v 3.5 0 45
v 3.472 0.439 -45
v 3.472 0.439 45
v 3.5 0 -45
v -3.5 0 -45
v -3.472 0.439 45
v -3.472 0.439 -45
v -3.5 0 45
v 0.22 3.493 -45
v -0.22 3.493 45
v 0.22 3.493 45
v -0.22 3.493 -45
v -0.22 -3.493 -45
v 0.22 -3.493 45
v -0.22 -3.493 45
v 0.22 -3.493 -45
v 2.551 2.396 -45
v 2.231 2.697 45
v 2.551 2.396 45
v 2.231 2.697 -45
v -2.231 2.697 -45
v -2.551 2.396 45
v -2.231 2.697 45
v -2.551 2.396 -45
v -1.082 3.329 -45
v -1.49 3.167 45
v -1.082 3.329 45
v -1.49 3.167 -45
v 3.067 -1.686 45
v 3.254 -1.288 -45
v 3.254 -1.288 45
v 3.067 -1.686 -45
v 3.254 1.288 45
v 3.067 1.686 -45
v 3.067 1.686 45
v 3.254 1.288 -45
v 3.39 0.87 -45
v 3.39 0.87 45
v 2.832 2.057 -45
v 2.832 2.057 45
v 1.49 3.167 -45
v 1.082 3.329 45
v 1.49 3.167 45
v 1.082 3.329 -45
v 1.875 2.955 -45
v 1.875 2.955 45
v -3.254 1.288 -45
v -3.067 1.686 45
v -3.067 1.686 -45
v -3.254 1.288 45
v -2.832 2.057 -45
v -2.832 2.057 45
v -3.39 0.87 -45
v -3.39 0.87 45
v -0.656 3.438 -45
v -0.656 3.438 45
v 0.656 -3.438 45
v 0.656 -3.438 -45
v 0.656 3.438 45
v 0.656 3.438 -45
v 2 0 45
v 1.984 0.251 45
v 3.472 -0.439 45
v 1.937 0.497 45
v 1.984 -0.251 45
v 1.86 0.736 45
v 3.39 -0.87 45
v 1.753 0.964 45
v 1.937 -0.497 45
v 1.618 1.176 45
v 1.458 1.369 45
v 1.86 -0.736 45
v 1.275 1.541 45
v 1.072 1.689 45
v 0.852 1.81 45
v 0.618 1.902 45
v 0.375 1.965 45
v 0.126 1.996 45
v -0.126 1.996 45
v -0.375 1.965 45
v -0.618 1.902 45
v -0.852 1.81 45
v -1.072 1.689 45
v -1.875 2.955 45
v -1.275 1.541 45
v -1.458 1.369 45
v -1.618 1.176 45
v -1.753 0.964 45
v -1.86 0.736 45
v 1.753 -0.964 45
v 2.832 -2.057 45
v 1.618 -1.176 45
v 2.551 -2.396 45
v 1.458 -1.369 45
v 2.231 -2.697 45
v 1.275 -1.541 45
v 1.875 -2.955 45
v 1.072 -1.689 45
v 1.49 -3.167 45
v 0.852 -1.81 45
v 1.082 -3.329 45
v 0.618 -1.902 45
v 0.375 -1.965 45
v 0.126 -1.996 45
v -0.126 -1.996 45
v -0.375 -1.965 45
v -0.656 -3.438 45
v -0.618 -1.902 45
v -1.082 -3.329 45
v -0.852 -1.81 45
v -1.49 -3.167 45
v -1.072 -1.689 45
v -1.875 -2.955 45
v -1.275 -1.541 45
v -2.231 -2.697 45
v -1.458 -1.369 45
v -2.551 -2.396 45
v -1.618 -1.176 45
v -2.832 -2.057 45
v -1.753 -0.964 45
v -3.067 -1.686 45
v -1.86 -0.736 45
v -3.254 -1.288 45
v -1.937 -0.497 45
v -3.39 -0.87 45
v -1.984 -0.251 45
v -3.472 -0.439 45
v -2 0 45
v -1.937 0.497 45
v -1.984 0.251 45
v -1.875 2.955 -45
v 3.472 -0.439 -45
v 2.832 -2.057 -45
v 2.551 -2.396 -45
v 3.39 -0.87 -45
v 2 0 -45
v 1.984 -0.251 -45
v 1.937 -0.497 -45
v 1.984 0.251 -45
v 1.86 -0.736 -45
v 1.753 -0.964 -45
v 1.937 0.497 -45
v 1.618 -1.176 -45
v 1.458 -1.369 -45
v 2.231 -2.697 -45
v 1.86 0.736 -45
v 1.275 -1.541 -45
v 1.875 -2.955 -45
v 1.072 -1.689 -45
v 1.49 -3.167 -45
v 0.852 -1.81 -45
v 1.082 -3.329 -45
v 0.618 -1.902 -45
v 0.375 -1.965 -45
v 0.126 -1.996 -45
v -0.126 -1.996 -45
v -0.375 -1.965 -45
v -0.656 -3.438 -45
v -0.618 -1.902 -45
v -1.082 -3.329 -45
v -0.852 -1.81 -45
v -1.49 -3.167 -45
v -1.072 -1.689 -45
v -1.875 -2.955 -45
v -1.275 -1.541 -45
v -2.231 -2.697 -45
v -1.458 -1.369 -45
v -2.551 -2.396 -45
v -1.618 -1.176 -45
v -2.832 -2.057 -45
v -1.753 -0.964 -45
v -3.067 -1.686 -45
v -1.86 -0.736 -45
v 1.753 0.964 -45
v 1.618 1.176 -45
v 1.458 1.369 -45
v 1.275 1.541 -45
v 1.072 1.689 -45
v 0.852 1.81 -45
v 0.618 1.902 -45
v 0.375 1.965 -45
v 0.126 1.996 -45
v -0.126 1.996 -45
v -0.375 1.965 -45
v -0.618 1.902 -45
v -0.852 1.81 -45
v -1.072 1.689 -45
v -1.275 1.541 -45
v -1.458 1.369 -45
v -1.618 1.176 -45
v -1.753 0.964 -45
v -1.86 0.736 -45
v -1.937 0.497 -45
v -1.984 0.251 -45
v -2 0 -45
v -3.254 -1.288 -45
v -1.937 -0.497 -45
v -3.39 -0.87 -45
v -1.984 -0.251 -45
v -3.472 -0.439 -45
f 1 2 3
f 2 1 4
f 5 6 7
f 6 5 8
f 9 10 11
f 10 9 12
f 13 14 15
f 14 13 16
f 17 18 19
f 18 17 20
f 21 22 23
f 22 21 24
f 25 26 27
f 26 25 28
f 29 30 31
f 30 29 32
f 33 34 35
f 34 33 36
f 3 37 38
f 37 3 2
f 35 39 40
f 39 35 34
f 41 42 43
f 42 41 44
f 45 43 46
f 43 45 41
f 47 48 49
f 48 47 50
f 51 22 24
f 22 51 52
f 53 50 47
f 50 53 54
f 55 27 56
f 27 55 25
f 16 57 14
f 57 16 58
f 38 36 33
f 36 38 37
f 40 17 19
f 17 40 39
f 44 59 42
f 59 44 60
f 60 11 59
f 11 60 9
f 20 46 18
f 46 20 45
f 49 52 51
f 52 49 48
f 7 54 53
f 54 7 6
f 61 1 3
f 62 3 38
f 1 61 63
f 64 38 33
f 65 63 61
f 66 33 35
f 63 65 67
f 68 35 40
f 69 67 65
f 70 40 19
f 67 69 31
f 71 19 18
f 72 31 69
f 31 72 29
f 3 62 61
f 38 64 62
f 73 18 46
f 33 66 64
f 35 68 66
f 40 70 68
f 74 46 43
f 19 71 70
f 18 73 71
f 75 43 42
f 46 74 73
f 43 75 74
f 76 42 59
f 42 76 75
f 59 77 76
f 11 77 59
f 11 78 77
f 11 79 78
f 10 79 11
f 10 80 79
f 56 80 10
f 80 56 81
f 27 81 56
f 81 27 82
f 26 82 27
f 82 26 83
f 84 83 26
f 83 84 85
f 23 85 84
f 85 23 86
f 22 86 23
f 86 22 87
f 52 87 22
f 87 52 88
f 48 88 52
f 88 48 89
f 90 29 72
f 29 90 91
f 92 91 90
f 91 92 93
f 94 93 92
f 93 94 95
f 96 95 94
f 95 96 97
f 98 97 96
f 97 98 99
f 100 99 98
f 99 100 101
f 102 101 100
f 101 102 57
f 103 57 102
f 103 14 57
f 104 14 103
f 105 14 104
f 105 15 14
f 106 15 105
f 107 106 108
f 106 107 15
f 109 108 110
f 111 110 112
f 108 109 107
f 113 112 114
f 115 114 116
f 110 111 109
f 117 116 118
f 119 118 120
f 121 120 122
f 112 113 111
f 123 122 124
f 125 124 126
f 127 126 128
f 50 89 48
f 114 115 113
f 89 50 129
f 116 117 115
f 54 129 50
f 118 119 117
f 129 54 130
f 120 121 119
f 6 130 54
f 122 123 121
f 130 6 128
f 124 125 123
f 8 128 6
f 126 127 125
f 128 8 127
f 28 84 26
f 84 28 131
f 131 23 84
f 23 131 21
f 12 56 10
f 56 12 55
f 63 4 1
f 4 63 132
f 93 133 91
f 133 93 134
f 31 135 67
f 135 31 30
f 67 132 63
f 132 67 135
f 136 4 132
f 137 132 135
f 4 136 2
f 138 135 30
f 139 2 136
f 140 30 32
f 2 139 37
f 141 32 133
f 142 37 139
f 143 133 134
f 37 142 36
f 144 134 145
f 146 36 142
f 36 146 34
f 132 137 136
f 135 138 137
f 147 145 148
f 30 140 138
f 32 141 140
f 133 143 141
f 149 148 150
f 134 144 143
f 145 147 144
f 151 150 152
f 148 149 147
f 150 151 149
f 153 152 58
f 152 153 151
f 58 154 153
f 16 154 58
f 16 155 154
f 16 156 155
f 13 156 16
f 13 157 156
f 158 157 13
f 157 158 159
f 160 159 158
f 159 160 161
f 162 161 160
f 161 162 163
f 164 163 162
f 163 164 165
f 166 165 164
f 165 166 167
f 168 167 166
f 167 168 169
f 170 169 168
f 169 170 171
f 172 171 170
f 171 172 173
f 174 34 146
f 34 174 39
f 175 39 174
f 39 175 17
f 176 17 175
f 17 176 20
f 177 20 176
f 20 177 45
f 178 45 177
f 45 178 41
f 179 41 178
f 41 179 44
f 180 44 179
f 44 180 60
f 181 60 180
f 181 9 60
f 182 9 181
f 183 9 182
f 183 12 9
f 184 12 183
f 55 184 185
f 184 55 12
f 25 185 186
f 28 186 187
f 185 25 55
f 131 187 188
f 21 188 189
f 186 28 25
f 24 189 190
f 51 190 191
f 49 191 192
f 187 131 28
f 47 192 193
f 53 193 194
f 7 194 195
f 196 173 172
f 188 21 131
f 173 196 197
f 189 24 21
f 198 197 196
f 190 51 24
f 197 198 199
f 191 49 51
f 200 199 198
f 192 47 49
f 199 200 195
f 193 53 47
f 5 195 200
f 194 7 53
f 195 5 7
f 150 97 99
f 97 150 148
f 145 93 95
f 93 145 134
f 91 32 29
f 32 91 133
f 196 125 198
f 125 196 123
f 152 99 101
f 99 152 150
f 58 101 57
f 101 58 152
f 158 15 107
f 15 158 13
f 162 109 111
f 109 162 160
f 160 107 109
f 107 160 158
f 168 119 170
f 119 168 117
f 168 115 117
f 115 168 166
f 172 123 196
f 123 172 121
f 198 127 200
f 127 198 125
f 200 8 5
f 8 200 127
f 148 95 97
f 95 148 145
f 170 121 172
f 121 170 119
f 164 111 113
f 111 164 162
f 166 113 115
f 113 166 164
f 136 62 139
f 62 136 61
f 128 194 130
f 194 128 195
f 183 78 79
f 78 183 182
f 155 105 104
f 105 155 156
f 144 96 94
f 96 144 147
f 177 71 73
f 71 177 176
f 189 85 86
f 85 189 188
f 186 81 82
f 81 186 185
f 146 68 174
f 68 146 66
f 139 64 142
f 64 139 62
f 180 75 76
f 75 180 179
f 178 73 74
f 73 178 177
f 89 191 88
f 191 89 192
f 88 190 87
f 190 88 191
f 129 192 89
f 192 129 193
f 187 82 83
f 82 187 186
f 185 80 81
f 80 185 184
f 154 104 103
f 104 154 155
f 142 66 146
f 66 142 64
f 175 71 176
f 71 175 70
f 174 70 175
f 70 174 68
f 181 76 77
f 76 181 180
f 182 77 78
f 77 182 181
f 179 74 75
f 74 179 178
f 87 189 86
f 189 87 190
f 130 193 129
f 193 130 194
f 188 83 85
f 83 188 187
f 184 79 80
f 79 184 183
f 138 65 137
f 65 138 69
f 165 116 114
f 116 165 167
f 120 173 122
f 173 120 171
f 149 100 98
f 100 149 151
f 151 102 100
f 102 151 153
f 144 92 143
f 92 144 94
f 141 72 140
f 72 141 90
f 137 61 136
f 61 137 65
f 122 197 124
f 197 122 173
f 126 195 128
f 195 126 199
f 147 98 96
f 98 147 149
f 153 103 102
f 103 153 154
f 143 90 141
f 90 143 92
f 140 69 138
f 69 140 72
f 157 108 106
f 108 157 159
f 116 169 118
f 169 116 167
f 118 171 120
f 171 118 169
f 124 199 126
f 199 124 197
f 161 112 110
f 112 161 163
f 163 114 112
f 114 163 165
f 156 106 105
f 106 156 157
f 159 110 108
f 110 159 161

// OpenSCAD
$fn = 50;


difference() {
	union() {
		translate(v = [0, 0, -45.0000000000]) {
			cylinder(h = 90, r = 3.5000000000);
		}
	}
	union() {
		translate(v = [0, 0, -100.0000000000]) {
			cylinder(h = 200, r = 2.0000000000);
		}
	}
}
